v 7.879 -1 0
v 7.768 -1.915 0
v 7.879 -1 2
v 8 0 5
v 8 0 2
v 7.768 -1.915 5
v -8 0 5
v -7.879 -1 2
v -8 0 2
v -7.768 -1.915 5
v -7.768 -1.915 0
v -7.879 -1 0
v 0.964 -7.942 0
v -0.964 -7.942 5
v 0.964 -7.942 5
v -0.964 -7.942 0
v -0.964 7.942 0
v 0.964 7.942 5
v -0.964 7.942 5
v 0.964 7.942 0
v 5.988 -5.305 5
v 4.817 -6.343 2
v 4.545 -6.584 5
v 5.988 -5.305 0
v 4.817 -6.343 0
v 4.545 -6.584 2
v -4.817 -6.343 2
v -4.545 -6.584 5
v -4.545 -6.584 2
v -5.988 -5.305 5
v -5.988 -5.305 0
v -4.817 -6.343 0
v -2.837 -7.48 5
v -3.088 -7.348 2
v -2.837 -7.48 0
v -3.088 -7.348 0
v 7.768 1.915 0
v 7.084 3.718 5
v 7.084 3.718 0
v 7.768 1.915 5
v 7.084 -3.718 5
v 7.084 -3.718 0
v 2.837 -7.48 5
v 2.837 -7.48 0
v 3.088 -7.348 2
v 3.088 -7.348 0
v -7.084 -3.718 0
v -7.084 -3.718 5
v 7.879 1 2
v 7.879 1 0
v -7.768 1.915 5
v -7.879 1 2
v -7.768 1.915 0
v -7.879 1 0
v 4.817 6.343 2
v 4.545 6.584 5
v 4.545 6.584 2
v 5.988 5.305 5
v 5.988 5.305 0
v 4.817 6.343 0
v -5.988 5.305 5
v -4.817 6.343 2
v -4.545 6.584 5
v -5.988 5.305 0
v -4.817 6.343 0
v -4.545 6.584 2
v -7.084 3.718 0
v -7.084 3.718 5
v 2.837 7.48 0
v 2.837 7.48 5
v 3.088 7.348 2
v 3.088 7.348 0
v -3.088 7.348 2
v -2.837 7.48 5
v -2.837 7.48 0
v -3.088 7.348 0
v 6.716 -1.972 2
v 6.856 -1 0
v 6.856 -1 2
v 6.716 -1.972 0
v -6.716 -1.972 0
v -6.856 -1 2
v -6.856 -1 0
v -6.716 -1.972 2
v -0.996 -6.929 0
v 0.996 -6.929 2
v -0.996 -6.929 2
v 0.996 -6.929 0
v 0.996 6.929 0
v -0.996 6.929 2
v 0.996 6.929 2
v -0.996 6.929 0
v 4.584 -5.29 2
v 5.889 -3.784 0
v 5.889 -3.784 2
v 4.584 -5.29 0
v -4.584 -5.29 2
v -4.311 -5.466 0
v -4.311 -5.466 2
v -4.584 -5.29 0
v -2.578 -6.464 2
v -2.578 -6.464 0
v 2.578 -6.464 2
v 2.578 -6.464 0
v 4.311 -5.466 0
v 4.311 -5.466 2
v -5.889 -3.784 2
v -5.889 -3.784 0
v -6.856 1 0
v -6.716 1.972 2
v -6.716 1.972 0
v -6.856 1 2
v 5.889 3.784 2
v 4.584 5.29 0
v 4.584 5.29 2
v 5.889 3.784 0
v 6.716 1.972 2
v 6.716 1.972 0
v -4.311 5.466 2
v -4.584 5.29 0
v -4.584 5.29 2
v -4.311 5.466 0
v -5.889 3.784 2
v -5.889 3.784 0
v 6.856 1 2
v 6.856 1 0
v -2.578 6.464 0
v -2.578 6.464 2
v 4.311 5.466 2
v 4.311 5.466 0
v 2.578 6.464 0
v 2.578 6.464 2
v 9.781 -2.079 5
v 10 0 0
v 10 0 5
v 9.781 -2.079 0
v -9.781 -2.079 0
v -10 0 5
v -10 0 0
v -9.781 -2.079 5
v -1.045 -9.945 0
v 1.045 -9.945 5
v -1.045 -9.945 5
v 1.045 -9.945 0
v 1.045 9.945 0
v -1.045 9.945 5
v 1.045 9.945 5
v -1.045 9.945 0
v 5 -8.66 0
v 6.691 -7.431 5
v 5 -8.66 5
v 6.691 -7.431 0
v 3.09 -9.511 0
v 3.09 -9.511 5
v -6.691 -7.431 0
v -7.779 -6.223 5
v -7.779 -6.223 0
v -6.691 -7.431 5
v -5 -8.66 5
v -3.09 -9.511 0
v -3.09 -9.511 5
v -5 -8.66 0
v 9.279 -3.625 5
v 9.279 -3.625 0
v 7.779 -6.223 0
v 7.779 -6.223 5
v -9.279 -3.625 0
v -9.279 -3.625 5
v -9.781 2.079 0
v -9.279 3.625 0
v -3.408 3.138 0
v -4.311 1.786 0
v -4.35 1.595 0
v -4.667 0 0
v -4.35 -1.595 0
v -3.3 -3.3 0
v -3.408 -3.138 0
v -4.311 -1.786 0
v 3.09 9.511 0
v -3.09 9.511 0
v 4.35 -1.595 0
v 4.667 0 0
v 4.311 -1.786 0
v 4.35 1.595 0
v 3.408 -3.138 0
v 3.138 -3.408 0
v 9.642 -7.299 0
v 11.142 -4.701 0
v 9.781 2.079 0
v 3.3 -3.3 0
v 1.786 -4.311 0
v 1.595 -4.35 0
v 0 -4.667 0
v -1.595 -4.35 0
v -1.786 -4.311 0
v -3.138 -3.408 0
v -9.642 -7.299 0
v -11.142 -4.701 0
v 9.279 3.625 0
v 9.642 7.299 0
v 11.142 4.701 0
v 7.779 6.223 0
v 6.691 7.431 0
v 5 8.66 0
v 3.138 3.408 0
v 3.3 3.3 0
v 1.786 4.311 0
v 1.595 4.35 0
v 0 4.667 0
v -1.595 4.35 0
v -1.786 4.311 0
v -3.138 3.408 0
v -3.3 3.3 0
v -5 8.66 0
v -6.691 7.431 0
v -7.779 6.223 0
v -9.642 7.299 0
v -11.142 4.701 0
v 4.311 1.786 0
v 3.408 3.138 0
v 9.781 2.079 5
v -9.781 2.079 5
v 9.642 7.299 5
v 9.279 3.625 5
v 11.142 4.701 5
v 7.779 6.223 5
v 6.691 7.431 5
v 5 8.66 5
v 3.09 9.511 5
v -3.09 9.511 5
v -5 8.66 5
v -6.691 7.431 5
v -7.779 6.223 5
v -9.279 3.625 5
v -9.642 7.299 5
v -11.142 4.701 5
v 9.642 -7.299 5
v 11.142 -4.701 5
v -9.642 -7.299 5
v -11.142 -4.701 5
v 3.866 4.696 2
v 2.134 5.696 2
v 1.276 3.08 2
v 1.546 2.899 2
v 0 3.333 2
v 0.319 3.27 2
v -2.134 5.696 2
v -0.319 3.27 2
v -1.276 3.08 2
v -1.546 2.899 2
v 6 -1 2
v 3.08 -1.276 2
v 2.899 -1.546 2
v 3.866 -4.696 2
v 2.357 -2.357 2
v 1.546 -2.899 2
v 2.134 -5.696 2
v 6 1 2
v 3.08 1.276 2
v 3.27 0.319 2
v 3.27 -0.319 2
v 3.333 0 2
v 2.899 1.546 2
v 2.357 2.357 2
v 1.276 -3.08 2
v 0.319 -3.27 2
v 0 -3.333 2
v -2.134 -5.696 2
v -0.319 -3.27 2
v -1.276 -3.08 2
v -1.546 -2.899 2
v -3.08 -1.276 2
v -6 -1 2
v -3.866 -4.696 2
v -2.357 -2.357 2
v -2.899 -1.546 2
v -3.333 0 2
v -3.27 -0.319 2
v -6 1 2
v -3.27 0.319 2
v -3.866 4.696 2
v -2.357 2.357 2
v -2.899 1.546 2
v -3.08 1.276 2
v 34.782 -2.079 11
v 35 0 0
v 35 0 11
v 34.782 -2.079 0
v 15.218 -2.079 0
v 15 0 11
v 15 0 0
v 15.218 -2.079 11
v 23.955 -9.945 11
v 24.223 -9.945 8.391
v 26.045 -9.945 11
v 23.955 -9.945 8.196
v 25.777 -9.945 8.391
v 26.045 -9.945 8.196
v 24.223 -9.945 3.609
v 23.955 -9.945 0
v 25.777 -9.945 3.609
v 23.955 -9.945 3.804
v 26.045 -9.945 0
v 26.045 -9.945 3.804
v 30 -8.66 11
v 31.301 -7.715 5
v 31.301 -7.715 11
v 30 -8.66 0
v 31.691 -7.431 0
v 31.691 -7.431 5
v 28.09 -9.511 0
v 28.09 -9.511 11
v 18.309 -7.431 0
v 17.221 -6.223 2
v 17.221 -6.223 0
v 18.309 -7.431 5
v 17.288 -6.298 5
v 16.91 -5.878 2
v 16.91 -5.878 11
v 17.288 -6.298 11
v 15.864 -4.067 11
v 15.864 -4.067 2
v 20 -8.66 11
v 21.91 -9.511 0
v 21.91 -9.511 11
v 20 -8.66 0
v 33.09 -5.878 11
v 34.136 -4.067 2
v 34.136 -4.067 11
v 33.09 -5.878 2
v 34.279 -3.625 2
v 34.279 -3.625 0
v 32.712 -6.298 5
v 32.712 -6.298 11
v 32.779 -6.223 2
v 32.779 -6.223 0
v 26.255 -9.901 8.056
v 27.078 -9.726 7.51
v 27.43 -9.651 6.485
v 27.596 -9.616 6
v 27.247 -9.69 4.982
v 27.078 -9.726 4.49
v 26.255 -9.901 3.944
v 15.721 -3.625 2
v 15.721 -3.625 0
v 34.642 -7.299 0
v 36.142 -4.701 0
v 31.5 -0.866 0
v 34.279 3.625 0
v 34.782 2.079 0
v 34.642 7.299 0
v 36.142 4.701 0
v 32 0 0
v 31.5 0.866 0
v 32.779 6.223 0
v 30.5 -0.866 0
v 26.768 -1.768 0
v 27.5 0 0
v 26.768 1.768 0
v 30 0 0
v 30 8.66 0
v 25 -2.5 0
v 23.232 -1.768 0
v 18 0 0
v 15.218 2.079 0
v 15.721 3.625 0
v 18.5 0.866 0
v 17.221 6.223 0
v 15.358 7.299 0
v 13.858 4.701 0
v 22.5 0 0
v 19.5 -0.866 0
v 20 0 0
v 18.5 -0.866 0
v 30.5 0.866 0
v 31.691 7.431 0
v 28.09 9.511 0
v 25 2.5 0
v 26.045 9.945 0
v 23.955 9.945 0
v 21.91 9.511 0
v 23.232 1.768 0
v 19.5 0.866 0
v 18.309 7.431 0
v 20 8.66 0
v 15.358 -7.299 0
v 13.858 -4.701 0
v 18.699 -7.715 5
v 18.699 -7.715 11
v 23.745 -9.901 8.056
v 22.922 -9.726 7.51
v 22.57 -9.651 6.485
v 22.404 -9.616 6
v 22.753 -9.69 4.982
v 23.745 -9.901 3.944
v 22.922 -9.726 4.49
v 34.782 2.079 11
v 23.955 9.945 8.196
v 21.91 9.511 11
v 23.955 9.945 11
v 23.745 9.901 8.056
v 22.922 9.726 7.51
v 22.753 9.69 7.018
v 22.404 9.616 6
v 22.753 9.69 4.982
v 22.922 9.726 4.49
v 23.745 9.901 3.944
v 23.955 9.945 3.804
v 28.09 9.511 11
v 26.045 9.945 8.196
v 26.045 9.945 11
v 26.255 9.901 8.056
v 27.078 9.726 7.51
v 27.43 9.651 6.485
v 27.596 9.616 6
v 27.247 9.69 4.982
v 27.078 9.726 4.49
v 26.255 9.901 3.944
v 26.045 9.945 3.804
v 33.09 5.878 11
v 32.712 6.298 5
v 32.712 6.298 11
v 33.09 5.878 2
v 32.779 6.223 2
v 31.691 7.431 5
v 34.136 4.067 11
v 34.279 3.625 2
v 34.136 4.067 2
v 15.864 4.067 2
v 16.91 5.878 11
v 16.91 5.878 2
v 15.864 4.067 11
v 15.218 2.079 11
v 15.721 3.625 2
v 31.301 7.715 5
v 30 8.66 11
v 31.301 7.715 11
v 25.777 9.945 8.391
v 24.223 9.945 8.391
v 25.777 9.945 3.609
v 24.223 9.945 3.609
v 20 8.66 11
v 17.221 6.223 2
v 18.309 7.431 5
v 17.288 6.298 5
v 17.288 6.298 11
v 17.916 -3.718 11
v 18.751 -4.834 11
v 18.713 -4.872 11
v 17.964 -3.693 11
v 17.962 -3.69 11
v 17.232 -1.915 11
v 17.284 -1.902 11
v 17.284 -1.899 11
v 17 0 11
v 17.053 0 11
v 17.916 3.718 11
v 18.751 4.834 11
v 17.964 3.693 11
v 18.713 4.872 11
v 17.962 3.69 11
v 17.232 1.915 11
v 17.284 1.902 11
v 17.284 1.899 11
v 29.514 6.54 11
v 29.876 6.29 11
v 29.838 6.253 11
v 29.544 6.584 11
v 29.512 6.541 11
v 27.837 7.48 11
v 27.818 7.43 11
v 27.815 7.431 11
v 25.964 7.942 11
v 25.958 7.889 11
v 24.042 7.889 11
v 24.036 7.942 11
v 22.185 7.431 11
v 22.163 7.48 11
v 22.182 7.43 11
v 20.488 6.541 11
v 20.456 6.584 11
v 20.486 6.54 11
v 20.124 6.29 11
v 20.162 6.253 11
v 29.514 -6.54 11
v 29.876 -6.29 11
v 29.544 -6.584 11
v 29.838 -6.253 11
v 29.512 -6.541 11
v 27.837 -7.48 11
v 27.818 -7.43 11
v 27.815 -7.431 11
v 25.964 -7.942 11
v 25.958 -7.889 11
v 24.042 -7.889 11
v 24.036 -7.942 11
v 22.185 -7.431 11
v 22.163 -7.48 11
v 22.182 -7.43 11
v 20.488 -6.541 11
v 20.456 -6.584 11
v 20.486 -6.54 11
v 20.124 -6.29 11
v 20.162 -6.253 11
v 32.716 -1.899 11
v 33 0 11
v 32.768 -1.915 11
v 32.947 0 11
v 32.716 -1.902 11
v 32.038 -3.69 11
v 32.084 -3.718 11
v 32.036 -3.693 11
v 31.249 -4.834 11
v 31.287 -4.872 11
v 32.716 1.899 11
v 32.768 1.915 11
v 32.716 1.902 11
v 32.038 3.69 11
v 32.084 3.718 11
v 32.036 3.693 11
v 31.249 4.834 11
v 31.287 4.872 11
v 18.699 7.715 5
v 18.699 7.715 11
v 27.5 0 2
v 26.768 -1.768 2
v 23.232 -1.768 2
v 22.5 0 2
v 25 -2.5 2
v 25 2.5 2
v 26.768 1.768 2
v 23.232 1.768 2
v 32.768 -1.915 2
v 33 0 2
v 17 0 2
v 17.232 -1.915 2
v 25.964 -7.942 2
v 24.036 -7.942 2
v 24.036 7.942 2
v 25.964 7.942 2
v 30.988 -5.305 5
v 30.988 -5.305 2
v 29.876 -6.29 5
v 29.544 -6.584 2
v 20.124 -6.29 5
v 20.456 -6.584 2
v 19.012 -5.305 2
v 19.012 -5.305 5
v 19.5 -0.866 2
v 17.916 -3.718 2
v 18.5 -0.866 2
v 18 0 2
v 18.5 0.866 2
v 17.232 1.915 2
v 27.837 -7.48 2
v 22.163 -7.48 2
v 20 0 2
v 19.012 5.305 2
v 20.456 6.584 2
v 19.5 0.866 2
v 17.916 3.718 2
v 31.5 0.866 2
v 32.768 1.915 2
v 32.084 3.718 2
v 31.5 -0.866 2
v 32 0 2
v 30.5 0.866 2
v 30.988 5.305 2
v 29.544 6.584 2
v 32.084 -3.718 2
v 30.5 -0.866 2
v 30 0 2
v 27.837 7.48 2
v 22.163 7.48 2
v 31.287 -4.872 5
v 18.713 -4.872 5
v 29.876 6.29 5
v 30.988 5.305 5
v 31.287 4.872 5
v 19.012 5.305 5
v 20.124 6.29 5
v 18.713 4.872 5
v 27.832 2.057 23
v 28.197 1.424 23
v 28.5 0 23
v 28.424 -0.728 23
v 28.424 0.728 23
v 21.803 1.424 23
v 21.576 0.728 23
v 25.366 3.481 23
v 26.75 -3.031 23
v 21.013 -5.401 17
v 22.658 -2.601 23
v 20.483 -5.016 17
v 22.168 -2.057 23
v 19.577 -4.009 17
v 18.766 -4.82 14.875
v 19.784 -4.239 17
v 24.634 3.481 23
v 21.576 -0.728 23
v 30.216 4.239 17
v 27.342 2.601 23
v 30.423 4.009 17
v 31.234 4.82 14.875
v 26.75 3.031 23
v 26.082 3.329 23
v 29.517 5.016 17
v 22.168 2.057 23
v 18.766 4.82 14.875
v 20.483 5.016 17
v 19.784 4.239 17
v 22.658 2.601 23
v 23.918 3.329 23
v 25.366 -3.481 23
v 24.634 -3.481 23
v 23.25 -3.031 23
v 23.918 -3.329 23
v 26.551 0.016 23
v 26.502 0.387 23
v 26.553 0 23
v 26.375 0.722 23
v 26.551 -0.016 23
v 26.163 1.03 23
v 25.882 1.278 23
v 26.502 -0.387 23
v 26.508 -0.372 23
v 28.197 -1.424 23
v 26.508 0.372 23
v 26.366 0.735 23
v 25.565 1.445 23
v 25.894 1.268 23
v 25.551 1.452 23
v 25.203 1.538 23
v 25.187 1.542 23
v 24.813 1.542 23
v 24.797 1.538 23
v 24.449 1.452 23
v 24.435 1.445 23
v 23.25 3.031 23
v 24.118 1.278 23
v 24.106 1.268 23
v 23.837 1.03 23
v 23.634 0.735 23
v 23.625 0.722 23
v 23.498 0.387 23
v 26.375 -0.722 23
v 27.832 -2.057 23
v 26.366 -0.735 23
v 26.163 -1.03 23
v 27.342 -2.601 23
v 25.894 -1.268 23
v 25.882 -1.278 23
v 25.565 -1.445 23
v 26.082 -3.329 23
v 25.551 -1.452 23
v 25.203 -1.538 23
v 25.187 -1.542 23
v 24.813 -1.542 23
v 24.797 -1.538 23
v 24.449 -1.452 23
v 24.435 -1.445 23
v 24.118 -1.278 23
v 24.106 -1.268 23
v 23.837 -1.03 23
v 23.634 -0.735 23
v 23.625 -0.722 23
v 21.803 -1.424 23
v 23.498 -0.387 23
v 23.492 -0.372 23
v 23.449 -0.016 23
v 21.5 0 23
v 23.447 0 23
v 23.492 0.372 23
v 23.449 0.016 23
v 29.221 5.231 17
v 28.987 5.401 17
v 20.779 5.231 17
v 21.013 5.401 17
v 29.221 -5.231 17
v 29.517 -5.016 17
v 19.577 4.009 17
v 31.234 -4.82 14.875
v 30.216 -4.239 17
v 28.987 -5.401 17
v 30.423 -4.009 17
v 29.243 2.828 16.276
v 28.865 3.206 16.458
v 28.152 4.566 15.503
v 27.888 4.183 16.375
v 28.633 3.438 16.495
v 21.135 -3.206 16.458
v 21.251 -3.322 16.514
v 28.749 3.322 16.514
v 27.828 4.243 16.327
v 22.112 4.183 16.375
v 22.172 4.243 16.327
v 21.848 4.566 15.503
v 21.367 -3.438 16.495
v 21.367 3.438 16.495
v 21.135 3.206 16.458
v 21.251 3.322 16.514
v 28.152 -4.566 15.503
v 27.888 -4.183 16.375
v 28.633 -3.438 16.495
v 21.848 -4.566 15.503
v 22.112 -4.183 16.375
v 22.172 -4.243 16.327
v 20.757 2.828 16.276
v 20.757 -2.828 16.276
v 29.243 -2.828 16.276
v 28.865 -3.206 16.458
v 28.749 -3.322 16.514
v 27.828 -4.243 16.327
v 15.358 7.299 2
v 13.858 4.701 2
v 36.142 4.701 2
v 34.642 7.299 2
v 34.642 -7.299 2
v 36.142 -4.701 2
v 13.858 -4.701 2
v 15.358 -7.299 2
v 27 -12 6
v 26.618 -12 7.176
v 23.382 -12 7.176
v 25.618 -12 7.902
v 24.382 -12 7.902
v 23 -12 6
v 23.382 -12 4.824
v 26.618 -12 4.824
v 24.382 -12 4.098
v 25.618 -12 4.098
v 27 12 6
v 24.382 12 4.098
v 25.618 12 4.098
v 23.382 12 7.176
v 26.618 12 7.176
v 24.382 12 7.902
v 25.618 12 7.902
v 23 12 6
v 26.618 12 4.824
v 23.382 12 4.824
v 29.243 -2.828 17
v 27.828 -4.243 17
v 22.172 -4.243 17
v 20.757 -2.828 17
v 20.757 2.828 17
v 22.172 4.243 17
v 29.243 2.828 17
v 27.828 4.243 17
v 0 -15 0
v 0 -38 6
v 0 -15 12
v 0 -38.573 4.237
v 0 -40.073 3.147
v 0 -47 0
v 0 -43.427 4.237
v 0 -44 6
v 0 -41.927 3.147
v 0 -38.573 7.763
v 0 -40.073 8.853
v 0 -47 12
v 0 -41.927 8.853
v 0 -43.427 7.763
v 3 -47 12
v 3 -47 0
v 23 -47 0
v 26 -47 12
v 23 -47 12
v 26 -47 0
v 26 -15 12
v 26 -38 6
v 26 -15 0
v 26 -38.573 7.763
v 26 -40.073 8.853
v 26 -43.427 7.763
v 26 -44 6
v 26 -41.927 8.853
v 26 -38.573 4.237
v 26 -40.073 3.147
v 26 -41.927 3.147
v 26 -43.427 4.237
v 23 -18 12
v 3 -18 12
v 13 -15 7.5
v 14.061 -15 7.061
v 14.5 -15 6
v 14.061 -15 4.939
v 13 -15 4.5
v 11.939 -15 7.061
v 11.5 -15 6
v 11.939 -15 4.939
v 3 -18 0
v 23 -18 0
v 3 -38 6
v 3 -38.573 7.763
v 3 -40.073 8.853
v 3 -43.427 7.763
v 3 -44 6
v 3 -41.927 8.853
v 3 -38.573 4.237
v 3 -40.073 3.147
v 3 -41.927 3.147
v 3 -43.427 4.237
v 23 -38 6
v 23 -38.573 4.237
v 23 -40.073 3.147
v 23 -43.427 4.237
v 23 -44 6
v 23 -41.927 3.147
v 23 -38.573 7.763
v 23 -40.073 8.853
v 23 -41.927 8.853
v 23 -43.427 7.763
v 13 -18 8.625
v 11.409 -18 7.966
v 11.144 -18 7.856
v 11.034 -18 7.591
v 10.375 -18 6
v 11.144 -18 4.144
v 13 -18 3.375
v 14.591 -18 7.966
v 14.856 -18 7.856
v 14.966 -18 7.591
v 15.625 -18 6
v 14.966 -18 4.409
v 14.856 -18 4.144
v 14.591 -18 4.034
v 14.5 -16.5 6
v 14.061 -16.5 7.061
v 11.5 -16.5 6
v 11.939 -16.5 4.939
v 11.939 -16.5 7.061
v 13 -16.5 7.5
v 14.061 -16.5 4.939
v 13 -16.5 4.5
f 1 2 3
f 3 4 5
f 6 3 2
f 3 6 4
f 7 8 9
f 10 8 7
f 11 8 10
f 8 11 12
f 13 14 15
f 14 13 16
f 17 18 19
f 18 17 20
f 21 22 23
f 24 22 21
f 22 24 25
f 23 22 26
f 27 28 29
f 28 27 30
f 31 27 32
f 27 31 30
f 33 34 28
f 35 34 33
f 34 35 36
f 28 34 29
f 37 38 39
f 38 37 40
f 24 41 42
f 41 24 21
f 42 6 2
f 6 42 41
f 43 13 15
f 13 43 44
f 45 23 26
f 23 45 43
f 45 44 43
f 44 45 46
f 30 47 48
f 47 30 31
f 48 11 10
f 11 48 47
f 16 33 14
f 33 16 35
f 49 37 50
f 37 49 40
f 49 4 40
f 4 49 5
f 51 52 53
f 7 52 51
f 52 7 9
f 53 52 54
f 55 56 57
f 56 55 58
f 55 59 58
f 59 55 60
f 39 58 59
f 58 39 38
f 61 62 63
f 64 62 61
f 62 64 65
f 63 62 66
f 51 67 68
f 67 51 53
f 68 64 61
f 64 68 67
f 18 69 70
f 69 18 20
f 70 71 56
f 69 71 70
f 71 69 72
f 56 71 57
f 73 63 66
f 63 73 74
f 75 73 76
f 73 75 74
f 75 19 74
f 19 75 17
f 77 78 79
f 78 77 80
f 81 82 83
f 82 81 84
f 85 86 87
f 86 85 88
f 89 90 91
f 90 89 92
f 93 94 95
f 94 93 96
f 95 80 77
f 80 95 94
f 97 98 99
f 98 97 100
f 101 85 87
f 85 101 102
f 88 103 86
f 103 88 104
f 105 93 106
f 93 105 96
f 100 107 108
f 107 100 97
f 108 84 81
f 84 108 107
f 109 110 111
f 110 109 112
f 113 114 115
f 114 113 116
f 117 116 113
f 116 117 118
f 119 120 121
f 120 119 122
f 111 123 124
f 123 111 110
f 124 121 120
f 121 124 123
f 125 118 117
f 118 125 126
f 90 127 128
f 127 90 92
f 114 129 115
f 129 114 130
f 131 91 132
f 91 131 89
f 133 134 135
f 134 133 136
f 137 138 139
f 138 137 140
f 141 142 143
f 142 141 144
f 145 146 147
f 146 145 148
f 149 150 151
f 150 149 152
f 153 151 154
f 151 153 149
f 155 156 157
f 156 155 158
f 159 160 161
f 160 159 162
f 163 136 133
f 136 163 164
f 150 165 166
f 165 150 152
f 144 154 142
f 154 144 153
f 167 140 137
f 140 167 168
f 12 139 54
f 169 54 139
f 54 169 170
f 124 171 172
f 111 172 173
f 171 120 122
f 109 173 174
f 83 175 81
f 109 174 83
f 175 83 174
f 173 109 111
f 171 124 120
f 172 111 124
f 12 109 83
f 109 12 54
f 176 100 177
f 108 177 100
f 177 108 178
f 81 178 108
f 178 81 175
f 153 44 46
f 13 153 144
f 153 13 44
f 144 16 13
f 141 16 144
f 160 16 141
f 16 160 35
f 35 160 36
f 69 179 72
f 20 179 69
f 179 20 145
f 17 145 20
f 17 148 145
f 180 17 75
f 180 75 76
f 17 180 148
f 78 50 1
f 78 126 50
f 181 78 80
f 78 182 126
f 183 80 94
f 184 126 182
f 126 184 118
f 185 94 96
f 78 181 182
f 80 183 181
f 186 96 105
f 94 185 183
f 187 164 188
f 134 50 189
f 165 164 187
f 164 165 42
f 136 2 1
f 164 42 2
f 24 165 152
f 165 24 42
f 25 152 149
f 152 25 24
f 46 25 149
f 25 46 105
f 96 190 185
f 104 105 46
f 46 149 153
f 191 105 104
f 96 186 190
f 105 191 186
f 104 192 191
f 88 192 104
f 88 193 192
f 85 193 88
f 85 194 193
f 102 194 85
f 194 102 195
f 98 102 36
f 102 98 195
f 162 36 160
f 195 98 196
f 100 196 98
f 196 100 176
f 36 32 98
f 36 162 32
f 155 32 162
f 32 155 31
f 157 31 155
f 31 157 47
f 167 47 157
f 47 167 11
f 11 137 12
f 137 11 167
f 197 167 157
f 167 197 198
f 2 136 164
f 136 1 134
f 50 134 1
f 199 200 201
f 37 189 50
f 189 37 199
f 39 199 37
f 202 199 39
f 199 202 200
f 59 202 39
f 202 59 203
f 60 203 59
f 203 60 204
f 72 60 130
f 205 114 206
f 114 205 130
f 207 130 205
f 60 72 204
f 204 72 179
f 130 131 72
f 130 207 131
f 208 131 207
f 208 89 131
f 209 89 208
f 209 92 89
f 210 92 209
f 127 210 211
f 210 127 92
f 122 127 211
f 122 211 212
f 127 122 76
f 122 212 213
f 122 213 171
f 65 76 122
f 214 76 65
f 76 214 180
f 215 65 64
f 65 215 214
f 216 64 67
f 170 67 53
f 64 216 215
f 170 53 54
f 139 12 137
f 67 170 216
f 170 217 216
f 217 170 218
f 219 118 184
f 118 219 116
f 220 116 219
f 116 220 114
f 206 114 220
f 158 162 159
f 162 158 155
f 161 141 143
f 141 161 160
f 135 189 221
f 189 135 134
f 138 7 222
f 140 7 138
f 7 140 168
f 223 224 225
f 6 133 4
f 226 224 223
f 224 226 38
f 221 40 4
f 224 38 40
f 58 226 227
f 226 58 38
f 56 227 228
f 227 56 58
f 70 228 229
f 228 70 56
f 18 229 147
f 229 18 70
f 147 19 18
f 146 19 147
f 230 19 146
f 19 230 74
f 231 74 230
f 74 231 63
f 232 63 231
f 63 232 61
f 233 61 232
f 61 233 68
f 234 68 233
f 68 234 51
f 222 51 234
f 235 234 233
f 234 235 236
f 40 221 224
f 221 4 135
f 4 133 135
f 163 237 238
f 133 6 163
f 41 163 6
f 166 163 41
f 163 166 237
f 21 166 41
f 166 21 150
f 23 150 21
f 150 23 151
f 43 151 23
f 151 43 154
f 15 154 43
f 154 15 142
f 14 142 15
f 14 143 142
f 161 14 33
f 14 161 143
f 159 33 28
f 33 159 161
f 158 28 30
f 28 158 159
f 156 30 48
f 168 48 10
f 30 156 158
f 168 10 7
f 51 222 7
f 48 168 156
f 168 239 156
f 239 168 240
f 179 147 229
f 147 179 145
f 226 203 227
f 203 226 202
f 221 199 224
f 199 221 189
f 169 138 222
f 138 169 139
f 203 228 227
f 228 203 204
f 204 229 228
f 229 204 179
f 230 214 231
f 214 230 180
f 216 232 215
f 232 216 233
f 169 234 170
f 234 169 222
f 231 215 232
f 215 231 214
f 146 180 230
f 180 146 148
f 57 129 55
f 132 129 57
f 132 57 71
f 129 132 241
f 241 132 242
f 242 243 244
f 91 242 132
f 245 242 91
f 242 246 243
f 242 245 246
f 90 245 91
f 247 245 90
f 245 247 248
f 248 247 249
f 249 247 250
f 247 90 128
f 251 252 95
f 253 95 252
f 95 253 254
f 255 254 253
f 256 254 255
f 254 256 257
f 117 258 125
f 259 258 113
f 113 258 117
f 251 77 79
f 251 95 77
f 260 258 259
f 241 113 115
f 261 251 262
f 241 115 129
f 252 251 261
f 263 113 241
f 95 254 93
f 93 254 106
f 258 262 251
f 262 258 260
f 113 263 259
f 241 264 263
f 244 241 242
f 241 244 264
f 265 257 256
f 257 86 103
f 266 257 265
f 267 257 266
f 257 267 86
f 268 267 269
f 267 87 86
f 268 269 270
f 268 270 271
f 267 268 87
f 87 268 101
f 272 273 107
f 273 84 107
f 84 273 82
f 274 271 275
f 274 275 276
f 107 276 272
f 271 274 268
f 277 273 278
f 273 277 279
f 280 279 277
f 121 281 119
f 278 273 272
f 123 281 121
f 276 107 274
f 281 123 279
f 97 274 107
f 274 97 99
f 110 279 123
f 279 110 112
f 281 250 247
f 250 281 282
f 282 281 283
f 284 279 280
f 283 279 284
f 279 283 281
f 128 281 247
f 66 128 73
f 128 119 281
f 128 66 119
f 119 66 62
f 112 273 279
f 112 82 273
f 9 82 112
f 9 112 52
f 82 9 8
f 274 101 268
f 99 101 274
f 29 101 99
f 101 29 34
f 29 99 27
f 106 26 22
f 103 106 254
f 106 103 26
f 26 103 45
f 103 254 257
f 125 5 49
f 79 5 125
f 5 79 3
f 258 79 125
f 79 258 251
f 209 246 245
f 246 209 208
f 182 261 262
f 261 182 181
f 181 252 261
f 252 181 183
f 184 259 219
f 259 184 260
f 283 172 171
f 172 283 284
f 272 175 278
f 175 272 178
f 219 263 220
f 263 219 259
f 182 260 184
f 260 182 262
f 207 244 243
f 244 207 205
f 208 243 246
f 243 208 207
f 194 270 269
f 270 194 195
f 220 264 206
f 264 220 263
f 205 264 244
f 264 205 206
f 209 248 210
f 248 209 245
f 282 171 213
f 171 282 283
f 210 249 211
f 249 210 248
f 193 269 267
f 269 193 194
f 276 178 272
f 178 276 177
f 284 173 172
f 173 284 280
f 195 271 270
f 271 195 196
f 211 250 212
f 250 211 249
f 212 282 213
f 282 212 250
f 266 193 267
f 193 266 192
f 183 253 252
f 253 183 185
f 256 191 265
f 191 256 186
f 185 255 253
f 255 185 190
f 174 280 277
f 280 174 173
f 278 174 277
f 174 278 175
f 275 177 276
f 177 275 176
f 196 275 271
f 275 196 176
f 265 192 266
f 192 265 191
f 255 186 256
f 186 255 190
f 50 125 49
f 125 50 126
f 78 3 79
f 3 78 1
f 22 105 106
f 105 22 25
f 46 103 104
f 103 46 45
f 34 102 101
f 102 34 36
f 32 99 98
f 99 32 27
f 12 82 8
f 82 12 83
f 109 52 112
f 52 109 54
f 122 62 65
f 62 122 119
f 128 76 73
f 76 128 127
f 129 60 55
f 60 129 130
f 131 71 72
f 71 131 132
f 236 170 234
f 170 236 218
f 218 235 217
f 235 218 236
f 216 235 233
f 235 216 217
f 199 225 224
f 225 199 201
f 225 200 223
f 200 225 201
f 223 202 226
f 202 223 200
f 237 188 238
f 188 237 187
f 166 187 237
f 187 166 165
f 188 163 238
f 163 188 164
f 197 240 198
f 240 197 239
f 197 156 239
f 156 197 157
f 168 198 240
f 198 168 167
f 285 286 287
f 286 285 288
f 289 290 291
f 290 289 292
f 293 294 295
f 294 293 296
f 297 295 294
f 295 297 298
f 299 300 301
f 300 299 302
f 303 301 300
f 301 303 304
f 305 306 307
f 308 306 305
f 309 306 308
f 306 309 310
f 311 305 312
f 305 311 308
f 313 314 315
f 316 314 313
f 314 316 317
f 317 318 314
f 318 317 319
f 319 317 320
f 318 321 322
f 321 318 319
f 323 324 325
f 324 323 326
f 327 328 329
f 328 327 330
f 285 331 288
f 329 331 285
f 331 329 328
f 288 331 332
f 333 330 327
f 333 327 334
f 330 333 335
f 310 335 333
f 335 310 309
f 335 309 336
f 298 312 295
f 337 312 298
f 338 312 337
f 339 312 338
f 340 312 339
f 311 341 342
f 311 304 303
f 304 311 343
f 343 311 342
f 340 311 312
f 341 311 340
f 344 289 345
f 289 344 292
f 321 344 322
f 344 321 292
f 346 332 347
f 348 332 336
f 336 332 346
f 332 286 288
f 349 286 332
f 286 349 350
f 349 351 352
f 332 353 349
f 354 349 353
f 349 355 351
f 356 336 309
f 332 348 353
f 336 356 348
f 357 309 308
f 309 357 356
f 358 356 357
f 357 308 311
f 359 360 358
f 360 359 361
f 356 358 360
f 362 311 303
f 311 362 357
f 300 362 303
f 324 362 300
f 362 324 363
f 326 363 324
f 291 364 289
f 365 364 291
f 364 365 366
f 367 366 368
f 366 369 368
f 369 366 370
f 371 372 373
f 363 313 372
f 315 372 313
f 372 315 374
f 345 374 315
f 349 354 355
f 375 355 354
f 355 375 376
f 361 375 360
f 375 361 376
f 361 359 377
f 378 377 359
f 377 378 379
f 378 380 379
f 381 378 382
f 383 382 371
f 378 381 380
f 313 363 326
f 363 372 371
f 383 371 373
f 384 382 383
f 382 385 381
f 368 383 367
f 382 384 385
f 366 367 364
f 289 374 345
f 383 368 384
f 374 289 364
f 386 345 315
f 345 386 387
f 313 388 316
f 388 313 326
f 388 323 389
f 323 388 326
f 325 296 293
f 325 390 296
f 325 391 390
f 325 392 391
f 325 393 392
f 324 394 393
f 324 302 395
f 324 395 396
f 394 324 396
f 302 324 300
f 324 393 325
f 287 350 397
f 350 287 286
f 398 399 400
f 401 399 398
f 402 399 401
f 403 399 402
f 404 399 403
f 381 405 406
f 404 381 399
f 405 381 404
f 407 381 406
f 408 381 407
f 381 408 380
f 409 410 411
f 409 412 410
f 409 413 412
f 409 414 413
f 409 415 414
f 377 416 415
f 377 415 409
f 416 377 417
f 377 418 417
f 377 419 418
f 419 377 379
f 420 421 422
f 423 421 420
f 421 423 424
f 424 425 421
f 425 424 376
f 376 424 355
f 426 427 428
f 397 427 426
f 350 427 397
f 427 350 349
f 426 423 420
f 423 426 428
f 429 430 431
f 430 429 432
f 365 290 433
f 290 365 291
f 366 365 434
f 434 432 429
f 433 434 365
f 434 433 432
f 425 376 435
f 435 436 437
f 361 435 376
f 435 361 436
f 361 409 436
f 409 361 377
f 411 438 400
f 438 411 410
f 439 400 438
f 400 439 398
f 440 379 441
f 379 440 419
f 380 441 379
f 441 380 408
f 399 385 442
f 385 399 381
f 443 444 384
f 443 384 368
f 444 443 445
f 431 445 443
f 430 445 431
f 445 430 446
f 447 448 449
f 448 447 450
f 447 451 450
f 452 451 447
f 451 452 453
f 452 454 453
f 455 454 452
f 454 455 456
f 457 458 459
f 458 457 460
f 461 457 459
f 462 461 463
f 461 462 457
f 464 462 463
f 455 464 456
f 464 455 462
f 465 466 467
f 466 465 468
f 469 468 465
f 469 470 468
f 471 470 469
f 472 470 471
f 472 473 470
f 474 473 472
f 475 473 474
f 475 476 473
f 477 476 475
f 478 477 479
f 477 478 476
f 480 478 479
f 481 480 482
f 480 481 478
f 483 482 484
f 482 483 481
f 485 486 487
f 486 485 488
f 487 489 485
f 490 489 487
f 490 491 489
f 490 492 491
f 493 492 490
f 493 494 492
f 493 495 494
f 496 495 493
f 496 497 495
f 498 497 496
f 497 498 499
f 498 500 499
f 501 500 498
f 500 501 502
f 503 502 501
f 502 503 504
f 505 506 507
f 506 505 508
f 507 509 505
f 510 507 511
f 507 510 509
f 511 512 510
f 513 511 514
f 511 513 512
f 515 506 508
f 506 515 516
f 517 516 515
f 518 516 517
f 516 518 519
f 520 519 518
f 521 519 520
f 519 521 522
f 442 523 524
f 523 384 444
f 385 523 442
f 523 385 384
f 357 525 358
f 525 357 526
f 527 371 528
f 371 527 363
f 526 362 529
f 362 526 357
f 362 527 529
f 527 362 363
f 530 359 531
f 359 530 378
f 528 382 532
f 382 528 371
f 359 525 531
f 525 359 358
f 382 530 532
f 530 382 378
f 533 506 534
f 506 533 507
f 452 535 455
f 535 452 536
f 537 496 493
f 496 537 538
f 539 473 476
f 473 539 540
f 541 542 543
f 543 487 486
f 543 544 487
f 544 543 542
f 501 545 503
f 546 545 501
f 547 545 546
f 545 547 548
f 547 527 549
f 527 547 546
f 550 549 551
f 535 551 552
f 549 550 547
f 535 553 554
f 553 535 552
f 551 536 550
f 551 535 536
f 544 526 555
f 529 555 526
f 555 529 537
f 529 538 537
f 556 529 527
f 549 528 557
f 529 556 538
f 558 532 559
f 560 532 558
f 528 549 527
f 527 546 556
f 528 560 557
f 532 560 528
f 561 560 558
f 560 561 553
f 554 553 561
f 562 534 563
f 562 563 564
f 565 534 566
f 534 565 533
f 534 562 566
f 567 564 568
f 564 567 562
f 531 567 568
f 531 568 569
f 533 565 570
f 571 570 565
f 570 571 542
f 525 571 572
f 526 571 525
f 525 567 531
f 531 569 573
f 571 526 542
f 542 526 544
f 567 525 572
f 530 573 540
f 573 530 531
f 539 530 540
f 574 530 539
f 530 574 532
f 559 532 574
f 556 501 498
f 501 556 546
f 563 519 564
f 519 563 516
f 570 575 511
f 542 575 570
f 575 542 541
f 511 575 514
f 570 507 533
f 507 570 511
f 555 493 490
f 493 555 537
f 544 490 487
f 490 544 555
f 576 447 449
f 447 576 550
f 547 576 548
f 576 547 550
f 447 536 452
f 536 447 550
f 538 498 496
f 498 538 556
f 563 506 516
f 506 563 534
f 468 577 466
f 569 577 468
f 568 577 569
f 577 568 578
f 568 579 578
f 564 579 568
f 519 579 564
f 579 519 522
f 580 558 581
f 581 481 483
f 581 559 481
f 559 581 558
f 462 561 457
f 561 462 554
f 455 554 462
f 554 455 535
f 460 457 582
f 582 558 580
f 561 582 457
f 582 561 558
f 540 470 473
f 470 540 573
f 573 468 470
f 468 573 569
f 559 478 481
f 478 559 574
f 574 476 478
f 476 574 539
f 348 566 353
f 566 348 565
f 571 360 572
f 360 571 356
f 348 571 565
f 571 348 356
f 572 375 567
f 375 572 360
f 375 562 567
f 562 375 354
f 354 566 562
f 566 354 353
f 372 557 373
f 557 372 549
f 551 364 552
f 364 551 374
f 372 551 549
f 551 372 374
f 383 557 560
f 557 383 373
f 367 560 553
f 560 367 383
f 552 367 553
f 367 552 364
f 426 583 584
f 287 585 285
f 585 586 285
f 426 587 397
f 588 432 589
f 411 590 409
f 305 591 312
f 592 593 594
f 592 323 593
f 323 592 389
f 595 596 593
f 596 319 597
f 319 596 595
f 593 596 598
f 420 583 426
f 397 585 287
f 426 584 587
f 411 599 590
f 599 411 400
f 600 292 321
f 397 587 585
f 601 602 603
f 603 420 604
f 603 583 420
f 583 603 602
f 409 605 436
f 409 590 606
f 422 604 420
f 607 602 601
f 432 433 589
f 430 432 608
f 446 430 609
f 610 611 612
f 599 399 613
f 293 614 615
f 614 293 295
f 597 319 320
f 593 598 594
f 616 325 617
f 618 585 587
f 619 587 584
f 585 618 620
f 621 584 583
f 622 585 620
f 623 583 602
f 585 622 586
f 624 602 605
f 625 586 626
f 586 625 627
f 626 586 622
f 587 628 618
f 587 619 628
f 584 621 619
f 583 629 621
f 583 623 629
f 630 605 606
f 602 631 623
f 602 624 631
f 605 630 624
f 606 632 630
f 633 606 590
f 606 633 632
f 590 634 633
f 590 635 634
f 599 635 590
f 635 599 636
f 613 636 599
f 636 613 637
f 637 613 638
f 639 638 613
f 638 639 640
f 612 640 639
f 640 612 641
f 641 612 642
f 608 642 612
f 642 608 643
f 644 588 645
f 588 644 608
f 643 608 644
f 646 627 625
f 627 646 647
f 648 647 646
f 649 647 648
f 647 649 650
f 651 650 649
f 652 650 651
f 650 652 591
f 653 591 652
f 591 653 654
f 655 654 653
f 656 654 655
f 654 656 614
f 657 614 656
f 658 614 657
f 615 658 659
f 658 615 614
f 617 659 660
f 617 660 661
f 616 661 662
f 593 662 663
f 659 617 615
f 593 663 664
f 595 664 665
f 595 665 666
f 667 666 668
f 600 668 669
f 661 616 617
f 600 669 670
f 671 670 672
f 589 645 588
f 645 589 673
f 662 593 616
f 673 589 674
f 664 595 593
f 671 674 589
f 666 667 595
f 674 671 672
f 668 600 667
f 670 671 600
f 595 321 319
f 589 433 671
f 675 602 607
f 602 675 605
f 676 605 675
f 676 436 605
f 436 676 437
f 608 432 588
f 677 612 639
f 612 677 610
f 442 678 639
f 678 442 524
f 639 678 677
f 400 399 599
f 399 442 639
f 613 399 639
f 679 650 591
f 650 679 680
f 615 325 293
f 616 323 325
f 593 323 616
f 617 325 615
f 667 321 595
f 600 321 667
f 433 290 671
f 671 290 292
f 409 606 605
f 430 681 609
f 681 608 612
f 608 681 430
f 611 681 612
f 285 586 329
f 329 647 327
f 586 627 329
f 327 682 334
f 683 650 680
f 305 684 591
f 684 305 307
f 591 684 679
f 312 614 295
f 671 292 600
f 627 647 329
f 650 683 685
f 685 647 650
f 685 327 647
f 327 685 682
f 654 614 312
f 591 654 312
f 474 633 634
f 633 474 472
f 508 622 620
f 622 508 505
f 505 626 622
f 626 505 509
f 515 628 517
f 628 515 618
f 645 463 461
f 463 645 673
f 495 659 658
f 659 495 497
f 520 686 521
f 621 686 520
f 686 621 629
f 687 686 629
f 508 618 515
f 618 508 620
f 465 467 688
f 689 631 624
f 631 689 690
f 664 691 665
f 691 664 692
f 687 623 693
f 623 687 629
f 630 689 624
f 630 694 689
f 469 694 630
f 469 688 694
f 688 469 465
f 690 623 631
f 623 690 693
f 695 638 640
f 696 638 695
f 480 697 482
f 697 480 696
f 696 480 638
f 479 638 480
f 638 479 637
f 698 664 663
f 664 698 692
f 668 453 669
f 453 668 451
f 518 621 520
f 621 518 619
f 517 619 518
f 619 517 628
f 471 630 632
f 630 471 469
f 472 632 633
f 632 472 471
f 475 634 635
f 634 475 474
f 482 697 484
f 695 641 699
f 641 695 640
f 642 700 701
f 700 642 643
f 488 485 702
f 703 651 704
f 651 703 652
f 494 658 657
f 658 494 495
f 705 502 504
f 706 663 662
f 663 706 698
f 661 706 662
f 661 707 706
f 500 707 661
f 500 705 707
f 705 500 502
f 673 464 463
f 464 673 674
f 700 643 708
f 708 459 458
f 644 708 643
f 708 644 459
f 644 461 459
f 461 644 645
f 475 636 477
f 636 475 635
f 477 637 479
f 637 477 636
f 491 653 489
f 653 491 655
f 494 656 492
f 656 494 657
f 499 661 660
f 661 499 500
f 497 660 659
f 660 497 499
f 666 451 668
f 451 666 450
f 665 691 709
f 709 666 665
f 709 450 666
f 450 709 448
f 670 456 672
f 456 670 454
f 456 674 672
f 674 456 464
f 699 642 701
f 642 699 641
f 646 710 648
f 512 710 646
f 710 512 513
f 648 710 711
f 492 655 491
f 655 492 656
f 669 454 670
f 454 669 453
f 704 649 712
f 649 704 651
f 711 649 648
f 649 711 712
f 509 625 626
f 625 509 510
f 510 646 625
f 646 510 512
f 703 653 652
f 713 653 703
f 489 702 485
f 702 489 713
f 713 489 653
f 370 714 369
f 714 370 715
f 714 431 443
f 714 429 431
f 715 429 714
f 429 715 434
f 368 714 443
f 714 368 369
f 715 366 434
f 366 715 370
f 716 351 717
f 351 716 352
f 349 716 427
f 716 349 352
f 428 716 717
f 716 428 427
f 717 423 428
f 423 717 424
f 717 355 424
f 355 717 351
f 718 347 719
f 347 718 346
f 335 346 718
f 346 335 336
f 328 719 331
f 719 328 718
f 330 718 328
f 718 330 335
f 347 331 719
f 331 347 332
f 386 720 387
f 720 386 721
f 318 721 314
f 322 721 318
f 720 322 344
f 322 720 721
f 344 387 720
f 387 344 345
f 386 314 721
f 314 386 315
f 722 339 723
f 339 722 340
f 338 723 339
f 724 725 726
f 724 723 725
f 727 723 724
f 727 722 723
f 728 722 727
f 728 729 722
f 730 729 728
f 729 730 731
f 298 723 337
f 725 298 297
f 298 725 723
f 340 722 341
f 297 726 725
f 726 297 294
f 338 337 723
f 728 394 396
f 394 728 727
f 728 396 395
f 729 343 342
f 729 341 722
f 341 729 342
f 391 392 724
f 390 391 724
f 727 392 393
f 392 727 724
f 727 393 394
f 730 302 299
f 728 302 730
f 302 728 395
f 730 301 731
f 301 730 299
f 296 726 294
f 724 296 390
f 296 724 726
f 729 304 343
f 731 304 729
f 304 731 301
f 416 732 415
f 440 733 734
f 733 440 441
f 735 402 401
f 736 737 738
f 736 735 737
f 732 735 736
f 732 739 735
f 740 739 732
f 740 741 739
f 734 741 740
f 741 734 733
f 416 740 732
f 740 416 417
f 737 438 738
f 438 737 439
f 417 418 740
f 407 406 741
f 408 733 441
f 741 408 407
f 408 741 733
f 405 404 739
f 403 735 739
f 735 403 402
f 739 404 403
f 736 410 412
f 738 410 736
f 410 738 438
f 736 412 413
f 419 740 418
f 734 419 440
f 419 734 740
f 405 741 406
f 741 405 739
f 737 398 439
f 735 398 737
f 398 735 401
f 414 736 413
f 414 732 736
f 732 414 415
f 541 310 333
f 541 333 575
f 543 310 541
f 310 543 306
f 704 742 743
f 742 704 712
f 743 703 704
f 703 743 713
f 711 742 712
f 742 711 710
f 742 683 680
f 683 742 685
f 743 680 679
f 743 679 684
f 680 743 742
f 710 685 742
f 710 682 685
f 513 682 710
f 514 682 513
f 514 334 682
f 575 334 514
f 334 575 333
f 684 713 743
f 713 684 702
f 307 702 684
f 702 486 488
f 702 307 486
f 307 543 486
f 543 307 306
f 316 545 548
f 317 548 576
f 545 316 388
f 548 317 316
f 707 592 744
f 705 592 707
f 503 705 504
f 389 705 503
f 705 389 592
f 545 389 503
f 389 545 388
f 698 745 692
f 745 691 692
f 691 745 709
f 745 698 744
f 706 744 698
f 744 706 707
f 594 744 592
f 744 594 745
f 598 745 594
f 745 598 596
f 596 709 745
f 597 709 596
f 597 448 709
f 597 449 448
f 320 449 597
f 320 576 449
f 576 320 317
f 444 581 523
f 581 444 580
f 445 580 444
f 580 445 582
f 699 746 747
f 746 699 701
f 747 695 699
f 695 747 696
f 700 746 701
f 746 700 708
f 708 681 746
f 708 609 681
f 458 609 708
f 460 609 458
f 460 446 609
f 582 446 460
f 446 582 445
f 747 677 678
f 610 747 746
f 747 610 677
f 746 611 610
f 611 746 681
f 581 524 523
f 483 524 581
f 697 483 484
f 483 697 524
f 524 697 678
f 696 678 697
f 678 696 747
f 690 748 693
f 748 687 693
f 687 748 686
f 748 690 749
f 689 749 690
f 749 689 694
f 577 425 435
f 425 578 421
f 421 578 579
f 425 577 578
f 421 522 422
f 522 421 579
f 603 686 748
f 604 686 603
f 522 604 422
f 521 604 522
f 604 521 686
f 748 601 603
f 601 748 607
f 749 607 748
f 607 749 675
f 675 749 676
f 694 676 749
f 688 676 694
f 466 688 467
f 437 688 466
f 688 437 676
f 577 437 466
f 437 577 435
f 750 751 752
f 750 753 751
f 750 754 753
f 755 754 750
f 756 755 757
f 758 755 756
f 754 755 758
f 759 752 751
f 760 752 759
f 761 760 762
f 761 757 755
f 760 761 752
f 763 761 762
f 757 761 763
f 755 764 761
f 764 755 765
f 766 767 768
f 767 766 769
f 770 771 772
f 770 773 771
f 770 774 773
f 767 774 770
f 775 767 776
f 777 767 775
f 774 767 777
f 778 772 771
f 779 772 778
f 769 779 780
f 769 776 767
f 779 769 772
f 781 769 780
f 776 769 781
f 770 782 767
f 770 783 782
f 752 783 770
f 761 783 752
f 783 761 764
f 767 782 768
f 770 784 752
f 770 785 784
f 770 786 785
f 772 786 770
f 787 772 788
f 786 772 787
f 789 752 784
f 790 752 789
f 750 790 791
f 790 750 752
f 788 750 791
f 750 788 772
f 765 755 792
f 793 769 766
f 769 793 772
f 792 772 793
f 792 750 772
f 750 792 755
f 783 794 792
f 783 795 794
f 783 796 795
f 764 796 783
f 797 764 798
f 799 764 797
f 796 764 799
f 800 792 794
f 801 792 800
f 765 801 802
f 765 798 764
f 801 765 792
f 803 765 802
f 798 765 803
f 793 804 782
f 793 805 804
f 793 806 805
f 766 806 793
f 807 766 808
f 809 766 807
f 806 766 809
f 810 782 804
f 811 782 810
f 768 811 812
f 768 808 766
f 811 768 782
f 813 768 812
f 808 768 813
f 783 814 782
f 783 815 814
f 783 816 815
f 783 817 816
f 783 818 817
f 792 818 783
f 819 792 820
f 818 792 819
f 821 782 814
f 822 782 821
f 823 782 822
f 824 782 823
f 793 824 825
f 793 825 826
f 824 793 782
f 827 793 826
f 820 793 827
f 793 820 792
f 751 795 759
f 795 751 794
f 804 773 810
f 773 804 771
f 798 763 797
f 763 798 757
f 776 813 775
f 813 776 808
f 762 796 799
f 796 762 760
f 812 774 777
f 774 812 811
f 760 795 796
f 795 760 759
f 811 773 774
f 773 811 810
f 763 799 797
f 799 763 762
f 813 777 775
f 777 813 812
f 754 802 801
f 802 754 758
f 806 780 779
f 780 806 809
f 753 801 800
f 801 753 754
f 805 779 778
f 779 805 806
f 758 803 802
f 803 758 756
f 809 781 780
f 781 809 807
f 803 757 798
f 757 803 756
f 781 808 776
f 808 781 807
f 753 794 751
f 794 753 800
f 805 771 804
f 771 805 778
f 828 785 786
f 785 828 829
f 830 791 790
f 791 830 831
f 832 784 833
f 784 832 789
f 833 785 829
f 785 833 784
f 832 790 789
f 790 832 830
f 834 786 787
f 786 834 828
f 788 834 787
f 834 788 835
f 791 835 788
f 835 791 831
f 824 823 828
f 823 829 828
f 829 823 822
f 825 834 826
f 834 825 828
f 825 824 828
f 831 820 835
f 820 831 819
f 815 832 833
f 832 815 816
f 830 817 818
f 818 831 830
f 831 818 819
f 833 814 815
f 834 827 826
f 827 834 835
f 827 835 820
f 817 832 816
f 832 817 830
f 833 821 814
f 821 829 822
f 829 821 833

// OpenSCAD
rr=10;
t=1.8;
cone_h=12;
bolt_r=3;
hold_l=32;

// lid
//translate([0, 0, 5.2])
rotate([180, 0, 0]) translate([0, 0, -2])
union() {
    difference() {
        translate([0, 0, -3]) cylinder(r=rr, h=5);
        translate([0, 0, -4]) cylinder(r=rr - 2, h=4);
        translate([0, 0, -0.5]) cylinder(r1=3, r2=5, h=3);
        difference() {
            translate([0, 0, -0.5]) cylinder(r=8, h=3);
            translate([0, 0, -1]) cylinder(r=7, h=4);
        }
    }
    for (angle = [0:60:300])
        rotate([0, 0, angle])
            translate([rr - 4, -1, 0]) cube([2, 2, 2]);
    for (angle = [30, 150, 210, 330])
        rotate([0, 0, angle]) translate([-rr - 2, -1.5, -3]) cube([3, 3, 5]);            
}

// base
translate([25, 0, 0]) rotate([180, 0, 0]) translate([0, 0, -2])
difference() {
    union() {
        difference() {
            translate([0, 0, -9]) cylinder(r=rr, h=11);    
            translate([0, 0, -0.5]) cylinder(r=2.5, h=3);
            translate([0, 0, -10]) cylinder(r=rr - 2, h=10);
            // holes
            translate([6, 0, -0.5]) cylinder(r=1, h=3, $fn=6);
            translate([-6, 0, -0.5]) cylinder(r=1, h=3, $fn=6);
        }
        difference() {
            translate([0, 0, -9 - cone_h]) cylinder(r1=3.5, r2=rr, h=cone_h);
            translate([0, 0, -9.1 - cone_h]) cylinder(r1=1.5, r2=rr - 2, h=cone_h + 0.2);
        }
        translate([0, rr - 2, -4]) rotate([-90, 0, 0])
            cylinder(r1=bolt_r, r2=bolt_r - 1, h=4);
        translate([0, -rr + 2, -4]) rotate([90, 0, 0])
            cylinder(r1=bolt_r, r2=bolt_r - 1, h=4);
        for (angle = [30, 150, 210, 330])
            rotate([0, 0, angle]) translate([-rr - 2, -1.5, 0]) cube([3, 3, 2]);            
    
    }
    for (angle = [45:90:360])
        rotate([0, 0, angle]) translate([5, -1, -15]) cube([5, 2, 12]);
}

// hold
//translate([bolt_r + 3, -rr - 3, -hold_l + 2]) rotate([0, 0, 90])
translate([0, -15, 0]) rotate([90, 0, 0])
difference() {
    cube([2 * rr + 6, bolt_r * 2 + 6, hold_l]);
    translate([3, -1, 3]) cube([2 * rr, bolt_r * 2 + 8, hold_l - 2]);
    translate([-1, bolt_r + 3, hold_l - bolt_r - 3]) rotate([0, 90, 0])
        cylinder(h = 2 * rr + 8, r = bolt_r);
    translate([rr + 3, bolt_r + 3, -0.5]) cylinder(r=1.5,h=4, $fn=8);
    translate([rr + 3, bolt_r + 3, 1.5]) cylinder(r1=1.5, r2=3, h=2, $fn=8);
}
